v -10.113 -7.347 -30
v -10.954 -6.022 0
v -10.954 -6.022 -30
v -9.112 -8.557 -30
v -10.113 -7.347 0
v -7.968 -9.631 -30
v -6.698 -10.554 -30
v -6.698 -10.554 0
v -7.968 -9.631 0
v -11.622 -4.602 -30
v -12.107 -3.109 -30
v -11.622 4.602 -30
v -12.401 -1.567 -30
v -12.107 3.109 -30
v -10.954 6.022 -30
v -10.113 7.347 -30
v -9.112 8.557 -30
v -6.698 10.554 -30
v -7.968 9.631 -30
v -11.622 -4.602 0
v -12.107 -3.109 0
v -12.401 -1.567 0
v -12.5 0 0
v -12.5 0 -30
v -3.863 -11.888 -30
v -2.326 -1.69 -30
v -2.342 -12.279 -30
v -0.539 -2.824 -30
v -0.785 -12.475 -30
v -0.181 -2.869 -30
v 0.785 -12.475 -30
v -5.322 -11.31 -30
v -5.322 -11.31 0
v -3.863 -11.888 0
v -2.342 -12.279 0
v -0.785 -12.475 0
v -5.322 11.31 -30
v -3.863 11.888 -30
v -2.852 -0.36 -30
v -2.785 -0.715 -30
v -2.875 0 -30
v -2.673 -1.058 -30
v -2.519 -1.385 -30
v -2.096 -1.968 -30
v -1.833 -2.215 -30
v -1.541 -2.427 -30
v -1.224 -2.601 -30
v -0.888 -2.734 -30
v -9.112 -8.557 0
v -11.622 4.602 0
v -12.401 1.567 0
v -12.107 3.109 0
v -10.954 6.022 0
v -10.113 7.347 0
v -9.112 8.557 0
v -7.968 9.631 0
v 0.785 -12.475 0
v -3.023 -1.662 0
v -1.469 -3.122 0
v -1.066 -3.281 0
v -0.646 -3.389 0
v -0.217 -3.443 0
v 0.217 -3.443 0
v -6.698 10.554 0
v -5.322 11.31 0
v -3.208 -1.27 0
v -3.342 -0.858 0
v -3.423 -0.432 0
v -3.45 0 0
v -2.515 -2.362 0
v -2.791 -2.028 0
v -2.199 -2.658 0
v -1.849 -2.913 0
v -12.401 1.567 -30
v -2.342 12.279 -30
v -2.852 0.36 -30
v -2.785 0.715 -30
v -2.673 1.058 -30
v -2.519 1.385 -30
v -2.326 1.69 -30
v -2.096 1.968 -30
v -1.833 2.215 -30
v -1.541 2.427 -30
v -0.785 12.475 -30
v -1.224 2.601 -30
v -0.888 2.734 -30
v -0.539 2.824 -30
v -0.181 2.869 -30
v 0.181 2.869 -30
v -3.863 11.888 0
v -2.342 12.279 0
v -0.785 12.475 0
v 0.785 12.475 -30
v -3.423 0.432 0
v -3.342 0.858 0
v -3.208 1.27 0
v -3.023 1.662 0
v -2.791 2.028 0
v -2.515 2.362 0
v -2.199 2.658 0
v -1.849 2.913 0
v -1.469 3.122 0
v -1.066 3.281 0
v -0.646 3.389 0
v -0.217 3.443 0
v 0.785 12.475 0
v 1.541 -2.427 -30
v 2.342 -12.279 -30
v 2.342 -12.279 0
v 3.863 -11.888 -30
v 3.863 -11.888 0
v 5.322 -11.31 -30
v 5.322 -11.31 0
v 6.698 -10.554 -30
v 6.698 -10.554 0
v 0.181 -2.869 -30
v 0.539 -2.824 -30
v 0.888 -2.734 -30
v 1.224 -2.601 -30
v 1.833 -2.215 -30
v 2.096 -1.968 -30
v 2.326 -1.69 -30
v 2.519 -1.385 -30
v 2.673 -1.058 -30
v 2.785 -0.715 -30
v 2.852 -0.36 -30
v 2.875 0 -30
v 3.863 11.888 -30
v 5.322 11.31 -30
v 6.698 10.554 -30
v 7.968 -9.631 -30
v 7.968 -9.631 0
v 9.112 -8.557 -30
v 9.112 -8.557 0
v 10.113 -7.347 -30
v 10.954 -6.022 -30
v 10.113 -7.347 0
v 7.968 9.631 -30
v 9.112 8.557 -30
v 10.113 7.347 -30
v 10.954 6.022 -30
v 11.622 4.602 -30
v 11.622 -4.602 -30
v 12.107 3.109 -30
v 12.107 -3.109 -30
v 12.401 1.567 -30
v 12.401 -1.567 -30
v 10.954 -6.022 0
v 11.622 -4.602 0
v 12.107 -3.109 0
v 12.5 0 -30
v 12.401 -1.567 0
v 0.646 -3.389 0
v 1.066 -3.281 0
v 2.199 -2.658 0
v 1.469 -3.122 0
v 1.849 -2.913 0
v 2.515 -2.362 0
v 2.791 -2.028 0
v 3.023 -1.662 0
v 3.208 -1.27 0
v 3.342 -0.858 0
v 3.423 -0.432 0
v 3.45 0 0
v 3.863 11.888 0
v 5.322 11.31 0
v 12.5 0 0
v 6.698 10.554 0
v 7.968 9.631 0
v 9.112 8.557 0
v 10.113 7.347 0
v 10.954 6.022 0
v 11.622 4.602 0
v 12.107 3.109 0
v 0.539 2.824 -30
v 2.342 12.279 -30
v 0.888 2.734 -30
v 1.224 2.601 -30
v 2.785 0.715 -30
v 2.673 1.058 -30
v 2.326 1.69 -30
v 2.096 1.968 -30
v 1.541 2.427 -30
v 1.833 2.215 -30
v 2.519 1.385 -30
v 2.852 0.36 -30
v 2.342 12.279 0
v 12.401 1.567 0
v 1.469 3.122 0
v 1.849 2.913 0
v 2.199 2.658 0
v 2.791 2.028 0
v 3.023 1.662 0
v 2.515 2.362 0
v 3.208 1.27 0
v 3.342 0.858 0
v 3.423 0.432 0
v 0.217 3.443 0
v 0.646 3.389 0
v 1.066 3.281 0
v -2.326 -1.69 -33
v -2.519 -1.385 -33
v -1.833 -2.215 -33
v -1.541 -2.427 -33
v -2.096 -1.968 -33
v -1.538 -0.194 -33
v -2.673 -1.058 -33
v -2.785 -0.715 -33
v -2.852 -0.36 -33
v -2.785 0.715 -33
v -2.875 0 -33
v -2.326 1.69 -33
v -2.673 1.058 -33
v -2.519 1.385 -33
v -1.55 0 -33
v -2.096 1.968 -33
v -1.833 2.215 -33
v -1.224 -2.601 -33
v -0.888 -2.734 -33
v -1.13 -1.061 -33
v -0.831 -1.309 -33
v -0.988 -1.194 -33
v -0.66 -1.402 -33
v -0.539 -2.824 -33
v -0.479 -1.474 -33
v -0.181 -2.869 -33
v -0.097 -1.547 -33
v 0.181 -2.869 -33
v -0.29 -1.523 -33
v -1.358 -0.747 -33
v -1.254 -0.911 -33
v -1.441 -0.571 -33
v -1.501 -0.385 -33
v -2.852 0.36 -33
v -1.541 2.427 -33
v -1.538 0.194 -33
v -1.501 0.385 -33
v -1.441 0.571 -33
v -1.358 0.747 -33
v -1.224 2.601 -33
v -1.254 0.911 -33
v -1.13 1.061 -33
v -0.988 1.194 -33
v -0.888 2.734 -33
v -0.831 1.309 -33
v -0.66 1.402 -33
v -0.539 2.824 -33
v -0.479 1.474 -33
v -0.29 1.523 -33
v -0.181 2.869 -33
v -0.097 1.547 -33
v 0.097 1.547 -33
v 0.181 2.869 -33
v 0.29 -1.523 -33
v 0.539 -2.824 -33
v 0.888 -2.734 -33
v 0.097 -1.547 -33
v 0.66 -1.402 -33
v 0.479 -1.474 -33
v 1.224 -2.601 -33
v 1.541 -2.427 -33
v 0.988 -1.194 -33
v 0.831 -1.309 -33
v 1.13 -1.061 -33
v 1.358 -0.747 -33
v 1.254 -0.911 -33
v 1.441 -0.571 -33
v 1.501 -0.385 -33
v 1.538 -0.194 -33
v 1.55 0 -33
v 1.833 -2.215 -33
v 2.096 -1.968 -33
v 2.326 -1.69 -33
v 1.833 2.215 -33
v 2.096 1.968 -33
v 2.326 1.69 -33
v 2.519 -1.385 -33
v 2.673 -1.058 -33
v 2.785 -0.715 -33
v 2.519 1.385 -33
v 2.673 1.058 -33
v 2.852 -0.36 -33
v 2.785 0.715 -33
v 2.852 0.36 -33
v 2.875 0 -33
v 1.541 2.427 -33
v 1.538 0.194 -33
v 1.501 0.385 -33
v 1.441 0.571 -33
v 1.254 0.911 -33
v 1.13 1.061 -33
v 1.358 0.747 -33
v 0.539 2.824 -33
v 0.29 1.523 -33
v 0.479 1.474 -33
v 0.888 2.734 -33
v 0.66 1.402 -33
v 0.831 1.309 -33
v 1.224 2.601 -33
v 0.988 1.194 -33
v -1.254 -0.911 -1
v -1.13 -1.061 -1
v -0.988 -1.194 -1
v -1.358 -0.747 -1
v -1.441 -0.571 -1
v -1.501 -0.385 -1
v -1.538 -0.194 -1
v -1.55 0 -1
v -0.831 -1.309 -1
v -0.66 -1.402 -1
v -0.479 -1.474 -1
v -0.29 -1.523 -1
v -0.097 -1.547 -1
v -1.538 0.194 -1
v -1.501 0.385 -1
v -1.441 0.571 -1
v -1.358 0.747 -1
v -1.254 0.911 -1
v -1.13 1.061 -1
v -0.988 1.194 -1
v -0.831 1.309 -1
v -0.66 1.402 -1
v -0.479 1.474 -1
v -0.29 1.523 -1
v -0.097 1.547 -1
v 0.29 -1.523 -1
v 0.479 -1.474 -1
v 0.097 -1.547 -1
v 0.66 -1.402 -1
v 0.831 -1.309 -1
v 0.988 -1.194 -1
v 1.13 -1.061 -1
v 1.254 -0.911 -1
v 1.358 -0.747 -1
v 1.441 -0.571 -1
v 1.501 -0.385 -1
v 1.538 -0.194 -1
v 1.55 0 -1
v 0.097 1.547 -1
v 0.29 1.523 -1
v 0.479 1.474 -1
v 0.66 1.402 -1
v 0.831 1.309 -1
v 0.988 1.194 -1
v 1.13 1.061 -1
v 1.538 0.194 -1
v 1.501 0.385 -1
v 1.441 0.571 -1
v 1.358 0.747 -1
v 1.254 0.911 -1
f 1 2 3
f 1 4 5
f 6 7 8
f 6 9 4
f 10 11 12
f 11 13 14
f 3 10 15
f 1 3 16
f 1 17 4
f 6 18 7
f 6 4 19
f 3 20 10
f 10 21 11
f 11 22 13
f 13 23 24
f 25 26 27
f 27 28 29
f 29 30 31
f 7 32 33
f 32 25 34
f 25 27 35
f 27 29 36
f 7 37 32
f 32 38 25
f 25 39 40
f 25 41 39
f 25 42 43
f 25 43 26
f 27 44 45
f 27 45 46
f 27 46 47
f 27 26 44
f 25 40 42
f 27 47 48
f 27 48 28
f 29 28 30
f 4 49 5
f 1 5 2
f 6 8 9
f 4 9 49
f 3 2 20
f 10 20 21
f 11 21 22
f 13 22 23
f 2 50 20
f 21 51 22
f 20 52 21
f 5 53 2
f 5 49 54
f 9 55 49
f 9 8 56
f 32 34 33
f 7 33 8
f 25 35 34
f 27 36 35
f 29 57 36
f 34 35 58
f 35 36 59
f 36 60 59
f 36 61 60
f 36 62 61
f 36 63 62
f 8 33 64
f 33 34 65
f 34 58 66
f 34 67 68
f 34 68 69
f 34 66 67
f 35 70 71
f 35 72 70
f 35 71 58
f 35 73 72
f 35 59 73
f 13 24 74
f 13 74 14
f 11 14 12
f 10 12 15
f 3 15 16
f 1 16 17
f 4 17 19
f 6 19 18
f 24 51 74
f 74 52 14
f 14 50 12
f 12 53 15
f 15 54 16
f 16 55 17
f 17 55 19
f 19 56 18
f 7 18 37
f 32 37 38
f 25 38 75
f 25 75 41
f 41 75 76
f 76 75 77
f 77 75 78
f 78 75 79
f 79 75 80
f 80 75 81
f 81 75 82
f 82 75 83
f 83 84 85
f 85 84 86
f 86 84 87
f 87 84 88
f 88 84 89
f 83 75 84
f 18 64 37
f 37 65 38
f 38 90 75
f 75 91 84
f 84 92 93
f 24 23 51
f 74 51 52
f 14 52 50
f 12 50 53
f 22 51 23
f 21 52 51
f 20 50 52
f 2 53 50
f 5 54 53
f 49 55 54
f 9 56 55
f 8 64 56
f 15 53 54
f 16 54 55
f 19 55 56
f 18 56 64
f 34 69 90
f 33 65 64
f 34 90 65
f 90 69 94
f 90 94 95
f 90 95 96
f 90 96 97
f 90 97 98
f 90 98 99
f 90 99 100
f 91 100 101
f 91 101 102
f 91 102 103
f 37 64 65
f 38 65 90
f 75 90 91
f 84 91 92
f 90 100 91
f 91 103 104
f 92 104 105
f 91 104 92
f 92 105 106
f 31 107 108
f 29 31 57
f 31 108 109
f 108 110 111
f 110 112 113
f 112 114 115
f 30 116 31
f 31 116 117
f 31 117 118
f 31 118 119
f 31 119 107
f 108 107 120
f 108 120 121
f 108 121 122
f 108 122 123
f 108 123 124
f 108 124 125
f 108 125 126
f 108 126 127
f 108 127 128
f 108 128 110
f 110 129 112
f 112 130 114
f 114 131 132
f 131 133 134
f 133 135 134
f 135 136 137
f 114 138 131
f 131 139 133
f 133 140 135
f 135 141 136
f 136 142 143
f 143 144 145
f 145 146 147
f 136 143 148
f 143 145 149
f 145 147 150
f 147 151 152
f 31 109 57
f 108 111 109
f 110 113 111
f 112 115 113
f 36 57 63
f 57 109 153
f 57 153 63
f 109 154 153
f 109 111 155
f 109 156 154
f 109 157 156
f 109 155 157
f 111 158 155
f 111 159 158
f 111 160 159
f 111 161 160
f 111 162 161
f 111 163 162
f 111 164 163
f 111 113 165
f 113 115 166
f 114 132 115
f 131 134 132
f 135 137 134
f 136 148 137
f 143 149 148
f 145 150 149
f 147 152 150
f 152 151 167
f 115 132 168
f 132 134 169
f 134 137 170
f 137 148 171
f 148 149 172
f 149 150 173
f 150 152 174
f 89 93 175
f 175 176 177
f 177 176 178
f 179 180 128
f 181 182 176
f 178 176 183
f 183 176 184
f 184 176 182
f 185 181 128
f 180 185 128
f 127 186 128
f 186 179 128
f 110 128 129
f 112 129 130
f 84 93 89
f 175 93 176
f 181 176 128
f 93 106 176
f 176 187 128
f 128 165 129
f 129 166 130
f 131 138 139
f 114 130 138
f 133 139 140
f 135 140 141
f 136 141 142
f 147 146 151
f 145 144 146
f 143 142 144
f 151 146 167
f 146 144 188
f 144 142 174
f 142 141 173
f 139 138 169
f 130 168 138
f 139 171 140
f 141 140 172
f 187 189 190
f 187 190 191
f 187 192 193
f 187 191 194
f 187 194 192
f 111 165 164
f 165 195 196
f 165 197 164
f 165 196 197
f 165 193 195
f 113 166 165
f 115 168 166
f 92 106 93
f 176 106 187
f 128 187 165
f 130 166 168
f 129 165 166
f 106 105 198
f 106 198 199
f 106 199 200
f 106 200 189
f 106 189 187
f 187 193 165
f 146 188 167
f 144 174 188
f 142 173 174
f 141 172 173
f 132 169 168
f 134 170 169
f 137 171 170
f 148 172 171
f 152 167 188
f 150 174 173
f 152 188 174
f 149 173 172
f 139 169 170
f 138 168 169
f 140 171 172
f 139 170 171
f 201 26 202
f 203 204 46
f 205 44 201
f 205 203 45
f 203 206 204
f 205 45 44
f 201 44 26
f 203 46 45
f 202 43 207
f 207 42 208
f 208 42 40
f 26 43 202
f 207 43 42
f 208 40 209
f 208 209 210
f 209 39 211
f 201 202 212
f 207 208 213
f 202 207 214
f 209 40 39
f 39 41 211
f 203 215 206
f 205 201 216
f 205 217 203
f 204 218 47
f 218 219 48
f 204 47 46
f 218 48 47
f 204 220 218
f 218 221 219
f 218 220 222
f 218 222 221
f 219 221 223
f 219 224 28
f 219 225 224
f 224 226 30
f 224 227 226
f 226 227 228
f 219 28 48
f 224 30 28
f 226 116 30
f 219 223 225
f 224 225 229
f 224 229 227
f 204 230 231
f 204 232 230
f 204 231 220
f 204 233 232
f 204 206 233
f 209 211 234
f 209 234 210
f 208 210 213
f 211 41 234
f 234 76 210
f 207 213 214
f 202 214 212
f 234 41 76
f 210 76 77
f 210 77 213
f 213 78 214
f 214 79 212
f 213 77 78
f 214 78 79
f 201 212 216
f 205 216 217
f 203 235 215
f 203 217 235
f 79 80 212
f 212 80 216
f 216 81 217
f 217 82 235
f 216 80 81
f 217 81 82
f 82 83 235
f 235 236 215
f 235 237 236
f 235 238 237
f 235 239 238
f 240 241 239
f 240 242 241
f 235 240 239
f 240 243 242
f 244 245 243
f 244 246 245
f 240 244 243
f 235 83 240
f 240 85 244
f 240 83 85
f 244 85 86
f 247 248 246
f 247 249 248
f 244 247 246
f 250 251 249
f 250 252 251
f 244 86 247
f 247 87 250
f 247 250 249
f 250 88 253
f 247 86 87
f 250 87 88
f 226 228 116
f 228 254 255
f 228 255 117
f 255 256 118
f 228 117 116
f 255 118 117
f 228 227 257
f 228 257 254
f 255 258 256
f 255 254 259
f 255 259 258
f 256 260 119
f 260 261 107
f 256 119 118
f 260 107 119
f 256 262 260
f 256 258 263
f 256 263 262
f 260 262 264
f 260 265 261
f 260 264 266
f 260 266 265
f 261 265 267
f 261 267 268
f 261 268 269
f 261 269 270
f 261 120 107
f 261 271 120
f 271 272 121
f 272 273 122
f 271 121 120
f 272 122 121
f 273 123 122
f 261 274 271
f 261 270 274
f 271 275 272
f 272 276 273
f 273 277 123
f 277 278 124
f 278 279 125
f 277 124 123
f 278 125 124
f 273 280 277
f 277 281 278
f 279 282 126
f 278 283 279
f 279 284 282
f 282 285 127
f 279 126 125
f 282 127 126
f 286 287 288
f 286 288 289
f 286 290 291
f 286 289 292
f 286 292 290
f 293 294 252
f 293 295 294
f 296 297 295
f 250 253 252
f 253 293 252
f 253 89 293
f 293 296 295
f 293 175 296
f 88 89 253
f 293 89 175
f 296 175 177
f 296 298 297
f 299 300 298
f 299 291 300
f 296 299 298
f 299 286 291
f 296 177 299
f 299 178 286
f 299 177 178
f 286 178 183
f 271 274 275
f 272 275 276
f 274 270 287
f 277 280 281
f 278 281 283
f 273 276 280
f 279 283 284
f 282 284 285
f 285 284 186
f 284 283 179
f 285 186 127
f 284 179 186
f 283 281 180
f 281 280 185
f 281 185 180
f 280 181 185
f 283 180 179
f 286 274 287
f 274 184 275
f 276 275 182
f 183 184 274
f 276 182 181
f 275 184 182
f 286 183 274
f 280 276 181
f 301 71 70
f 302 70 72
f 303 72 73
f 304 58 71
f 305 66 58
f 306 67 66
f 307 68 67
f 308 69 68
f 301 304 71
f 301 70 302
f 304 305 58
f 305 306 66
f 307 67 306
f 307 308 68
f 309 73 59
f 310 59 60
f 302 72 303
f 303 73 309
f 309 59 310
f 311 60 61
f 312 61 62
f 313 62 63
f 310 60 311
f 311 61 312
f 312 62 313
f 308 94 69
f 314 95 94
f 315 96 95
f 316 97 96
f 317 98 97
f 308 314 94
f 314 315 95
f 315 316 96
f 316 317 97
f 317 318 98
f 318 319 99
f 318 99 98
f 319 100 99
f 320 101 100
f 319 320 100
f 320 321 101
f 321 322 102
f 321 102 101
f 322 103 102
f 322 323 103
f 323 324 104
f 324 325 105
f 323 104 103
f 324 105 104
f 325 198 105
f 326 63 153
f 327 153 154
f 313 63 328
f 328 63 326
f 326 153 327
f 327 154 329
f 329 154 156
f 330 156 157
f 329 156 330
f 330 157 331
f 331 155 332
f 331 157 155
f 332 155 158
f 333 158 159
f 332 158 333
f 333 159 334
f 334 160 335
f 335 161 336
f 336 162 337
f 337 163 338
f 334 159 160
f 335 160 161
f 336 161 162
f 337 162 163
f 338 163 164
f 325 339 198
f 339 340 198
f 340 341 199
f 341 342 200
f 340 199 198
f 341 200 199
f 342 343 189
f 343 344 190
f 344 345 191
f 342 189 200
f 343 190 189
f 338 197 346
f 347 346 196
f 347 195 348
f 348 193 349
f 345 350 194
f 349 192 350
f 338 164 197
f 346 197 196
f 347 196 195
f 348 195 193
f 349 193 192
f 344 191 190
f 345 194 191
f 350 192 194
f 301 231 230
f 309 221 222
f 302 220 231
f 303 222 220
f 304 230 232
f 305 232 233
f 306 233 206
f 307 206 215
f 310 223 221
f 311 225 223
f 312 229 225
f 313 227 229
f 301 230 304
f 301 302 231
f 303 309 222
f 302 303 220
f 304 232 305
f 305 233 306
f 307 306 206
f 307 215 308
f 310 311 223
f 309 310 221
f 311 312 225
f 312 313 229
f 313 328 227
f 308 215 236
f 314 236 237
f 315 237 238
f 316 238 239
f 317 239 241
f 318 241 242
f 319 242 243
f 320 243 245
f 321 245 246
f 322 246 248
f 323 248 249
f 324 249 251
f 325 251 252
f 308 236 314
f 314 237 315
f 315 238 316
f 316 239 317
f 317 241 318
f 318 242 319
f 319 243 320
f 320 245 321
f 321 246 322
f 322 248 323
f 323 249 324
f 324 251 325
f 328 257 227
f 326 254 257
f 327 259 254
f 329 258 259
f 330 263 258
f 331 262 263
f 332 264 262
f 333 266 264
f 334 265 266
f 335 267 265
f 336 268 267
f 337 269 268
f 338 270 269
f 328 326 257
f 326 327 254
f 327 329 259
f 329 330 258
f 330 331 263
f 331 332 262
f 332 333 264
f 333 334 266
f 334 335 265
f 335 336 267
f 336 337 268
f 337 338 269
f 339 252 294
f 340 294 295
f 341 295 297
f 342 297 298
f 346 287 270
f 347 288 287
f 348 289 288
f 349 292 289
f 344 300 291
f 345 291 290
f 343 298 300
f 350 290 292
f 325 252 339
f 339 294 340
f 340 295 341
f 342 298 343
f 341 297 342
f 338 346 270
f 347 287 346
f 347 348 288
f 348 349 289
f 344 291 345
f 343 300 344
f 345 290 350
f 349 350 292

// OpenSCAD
$fn = 50;

difference() {
	union() {
		translate(v = [0, 0, -30.0]) {
			cylinder(h = 30, r = 12.5);
		}
		#translate(v = [0, 0, -33.0]) {
			cylinder(h = 33, r = 2.875);
		}
	}
	union() {
		translate(v = [0, 0, 0]) {
			rotate(a = [0, 0, 0]) {
				difference() {
					union() {
						translate(v = [0, 0, -33.0]) {
							cylinder(h = 33, r = 1.25);
						}
						translate(v = [0, 0, -1.0]) {
							cylinder(h = 1.0, r1 = 1.55, r2 = 3.45);
						}
						translate(v = [0, 0, -33.0]) {
							cylinder(h = 33, r = 1.55);
						}
						translate(v = [0, 0, -33.0]) {
							cylinder(h = 33, r = 1.25);
						}
					}
					union();
				}
			}
		}
	}
}
